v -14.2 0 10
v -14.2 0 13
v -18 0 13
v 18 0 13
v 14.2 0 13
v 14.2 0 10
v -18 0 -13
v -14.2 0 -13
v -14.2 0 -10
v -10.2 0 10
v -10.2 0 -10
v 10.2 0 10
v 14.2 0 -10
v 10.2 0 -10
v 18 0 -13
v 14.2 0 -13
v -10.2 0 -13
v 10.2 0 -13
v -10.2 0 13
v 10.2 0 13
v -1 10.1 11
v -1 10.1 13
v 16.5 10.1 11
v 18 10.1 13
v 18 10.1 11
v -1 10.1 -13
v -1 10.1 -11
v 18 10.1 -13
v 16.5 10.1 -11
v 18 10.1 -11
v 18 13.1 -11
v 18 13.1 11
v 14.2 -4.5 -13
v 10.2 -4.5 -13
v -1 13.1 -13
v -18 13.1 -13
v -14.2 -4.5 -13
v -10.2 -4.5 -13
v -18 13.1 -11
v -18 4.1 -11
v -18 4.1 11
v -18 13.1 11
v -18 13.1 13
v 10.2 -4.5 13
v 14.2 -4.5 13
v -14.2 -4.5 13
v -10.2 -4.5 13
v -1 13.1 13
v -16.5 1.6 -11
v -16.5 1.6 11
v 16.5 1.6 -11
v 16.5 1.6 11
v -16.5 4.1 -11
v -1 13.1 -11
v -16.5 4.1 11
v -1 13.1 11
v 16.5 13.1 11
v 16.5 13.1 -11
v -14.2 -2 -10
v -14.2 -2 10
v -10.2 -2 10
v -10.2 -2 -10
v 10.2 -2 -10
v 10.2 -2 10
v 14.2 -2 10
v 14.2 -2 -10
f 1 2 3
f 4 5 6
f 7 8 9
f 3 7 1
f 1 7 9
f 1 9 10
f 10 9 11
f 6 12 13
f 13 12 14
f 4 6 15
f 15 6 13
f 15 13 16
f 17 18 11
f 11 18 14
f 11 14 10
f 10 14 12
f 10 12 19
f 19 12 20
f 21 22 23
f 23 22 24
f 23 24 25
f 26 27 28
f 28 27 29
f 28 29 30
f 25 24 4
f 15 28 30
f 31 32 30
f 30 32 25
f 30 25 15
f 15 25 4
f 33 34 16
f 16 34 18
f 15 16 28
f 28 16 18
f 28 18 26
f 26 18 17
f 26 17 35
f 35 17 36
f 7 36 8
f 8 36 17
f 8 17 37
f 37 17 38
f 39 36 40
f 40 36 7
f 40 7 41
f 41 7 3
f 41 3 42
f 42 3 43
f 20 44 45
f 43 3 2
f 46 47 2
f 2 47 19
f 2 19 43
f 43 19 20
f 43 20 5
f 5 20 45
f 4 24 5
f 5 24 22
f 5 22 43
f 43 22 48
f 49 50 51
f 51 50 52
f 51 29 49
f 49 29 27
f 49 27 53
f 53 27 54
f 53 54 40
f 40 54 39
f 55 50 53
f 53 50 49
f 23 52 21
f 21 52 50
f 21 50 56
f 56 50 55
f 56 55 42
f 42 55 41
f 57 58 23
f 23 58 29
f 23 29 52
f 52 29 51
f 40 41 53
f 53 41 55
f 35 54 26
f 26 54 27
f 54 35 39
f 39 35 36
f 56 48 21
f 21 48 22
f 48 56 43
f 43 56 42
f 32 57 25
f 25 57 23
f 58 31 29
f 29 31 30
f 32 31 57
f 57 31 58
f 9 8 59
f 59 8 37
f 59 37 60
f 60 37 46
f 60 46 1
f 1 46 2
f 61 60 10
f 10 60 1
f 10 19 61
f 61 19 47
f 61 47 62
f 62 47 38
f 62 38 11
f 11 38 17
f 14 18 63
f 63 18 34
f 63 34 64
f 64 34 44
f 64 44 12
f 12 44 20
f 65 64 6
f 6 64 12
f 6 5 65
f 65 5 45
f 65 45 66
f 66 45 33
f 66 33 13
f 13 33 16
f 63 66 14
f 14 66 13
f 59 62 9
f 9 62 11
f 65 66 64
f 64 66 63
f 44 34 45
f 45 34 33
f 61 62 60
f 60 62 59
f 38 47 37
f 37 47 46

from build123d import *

# Parameters (mm, degrees)
SKETCH_1_W          = 36
SKETCH_1_H          = 26
EXTRUDE_1_DEPTH     = 14.6
SKETCH_2_W          = 33
SKETCH_2_H          = 22
CUT_EXTRUDE_1_DEPTH = 13
SKETCH_3_W          = 36
SKETCH_3_H          = 26
CUT_EXTRUDE_2_DEPTH = 4.5
SKETCH_4_W          = 1.5
SKETCH_4_H          = 22
CUT_EXTRUDE_3_DEPTH = 6
SKETCH_7_W          = 17
SKETCH_7_H          = 2
SKETCH_7_W_2        = 1.5
SKETCH_7_H_2        = 22
EXTRUDE_4_DEPTH     = 3
SKETCH_5_W          = 4
SKETCH_5_H          = 3
EXTRUDE_5_DEPTH     = 2
SKETCH_8_W          = 4
SKETCH_8_H          = 26
EXTRUDE_6_DEPTH     = 2.5


with BuildPart() as part:
    # 草图1 → 凸台-拉伸1 (new body)
    with BuildSketch(Plane(origin=(0, 0, 0), x_dir=(1, 0, 0), z_dir=(0, 1, 0))):
        Rectangle(SKETCH_1_W, SKETCH_1_H)
    extrude(amount=EXTRUDE_1_DEPTH)

    # 草图2 → 切除-拉伸1 (cut)
    with BuildSketch(Plane(origin=(0, 14.6, 0), x_dir=(1, 0, 0), z_dir=(0, 1, 0))):
        Rectangle(SKETCH_2_W, SKETCH_2_H)
    extrude(amount=-CUT_EXTRUDE_1_DEPTH, mode=Mode.SUBTRACT)

    # 草图3 → 切除-拉伸2 (cut)
    with BuildSketch(Plane(origin=(0, 14.6, 0), x_dir=(1, 0, 0), z_dir=(0, 1, 0))):
        Rectangle(SKETCH_3_W, SKETCH_3_H)
    extrude(amount=-CUT_EXTRUDE_2_DEPTH, mode=Mode.SUBTRACT)

    # 草图4 → 切除-拉伸3 (cut)
    with BuildSketch(Plane(origin=(0, 10.1, 0), x_dir=(1, 0, 0), z_dir=(0, 1, 0))):
        with Locations((-17.25, 0)):
            Rectangle(SKETCH_4_W, SKETCH_4_H)
    extrude(amount=-CUT_EXTRUDE_3_DEPTH, mode=Mode.SUBTRACT)

    # 草图7 → 凸台-拉伸4 (add)
    with BuildSketch(Plane(origin=(0, 10.1, 0), x_dir=(1, 0, 0), z_dir=(0, 1, 0))):
        with Locations((-9.5, 12)):
            Rectangle(SKETCH_7_W, SKETCH_7_H)
        with Locations((-9.5, -12)):
            Rectangle(SKETCH_7_W, SKETCH_7_H)
        with Locations((17.25, 0)):
            Rectangle(SKETCH_7_W_2, SKETCH_7_H_2)
    extrude(amount=EXTRUDE_4_DEPTH)

    # 草图5 → 凸台-拉伸5 (add)
    with BuildSketch(Plane(origin=(0, 0, 0), x_dir=(-1, 0, 0), z_dir=(0, -1, 0))):
        with Locations((-12.2, -11.5)):
            Rectangle(SKETCH_5_W, SKETCH_5_H)
        with Locations((12.2, -11.5)):
            Rectangle(SKETCH_5_W, SKETCH_5_H)
        with Locations((-12.2, 11.5)):
            Rectangle(SKETCH_5_W, SKETCH_5_H)
        with Locations((12.2, 11.5)):
            Rectangle(SKETCH_5_W, SKETCH_5_H)
    extrude(amount=EXTRUDE_5_DEPTH)

    # 草图8 → 凸台-拉伸6 (add)
    with BuildSketch(Plane(origin=(0, -2, 0), x_dir=(-1, 0, 0), z_dir=(0, -1, 0))):
        with Locations((-12.2, 0)):
            Rectangle(SKETCH_8_W, SKETCH_8_H)
        with Locations((12.2, 0)):
            Rectangle(SKETCH_8_W, SKETCH_8_H)
    extrude(amount=EXTRUDE_6_DEPTH)


solid = part.part
